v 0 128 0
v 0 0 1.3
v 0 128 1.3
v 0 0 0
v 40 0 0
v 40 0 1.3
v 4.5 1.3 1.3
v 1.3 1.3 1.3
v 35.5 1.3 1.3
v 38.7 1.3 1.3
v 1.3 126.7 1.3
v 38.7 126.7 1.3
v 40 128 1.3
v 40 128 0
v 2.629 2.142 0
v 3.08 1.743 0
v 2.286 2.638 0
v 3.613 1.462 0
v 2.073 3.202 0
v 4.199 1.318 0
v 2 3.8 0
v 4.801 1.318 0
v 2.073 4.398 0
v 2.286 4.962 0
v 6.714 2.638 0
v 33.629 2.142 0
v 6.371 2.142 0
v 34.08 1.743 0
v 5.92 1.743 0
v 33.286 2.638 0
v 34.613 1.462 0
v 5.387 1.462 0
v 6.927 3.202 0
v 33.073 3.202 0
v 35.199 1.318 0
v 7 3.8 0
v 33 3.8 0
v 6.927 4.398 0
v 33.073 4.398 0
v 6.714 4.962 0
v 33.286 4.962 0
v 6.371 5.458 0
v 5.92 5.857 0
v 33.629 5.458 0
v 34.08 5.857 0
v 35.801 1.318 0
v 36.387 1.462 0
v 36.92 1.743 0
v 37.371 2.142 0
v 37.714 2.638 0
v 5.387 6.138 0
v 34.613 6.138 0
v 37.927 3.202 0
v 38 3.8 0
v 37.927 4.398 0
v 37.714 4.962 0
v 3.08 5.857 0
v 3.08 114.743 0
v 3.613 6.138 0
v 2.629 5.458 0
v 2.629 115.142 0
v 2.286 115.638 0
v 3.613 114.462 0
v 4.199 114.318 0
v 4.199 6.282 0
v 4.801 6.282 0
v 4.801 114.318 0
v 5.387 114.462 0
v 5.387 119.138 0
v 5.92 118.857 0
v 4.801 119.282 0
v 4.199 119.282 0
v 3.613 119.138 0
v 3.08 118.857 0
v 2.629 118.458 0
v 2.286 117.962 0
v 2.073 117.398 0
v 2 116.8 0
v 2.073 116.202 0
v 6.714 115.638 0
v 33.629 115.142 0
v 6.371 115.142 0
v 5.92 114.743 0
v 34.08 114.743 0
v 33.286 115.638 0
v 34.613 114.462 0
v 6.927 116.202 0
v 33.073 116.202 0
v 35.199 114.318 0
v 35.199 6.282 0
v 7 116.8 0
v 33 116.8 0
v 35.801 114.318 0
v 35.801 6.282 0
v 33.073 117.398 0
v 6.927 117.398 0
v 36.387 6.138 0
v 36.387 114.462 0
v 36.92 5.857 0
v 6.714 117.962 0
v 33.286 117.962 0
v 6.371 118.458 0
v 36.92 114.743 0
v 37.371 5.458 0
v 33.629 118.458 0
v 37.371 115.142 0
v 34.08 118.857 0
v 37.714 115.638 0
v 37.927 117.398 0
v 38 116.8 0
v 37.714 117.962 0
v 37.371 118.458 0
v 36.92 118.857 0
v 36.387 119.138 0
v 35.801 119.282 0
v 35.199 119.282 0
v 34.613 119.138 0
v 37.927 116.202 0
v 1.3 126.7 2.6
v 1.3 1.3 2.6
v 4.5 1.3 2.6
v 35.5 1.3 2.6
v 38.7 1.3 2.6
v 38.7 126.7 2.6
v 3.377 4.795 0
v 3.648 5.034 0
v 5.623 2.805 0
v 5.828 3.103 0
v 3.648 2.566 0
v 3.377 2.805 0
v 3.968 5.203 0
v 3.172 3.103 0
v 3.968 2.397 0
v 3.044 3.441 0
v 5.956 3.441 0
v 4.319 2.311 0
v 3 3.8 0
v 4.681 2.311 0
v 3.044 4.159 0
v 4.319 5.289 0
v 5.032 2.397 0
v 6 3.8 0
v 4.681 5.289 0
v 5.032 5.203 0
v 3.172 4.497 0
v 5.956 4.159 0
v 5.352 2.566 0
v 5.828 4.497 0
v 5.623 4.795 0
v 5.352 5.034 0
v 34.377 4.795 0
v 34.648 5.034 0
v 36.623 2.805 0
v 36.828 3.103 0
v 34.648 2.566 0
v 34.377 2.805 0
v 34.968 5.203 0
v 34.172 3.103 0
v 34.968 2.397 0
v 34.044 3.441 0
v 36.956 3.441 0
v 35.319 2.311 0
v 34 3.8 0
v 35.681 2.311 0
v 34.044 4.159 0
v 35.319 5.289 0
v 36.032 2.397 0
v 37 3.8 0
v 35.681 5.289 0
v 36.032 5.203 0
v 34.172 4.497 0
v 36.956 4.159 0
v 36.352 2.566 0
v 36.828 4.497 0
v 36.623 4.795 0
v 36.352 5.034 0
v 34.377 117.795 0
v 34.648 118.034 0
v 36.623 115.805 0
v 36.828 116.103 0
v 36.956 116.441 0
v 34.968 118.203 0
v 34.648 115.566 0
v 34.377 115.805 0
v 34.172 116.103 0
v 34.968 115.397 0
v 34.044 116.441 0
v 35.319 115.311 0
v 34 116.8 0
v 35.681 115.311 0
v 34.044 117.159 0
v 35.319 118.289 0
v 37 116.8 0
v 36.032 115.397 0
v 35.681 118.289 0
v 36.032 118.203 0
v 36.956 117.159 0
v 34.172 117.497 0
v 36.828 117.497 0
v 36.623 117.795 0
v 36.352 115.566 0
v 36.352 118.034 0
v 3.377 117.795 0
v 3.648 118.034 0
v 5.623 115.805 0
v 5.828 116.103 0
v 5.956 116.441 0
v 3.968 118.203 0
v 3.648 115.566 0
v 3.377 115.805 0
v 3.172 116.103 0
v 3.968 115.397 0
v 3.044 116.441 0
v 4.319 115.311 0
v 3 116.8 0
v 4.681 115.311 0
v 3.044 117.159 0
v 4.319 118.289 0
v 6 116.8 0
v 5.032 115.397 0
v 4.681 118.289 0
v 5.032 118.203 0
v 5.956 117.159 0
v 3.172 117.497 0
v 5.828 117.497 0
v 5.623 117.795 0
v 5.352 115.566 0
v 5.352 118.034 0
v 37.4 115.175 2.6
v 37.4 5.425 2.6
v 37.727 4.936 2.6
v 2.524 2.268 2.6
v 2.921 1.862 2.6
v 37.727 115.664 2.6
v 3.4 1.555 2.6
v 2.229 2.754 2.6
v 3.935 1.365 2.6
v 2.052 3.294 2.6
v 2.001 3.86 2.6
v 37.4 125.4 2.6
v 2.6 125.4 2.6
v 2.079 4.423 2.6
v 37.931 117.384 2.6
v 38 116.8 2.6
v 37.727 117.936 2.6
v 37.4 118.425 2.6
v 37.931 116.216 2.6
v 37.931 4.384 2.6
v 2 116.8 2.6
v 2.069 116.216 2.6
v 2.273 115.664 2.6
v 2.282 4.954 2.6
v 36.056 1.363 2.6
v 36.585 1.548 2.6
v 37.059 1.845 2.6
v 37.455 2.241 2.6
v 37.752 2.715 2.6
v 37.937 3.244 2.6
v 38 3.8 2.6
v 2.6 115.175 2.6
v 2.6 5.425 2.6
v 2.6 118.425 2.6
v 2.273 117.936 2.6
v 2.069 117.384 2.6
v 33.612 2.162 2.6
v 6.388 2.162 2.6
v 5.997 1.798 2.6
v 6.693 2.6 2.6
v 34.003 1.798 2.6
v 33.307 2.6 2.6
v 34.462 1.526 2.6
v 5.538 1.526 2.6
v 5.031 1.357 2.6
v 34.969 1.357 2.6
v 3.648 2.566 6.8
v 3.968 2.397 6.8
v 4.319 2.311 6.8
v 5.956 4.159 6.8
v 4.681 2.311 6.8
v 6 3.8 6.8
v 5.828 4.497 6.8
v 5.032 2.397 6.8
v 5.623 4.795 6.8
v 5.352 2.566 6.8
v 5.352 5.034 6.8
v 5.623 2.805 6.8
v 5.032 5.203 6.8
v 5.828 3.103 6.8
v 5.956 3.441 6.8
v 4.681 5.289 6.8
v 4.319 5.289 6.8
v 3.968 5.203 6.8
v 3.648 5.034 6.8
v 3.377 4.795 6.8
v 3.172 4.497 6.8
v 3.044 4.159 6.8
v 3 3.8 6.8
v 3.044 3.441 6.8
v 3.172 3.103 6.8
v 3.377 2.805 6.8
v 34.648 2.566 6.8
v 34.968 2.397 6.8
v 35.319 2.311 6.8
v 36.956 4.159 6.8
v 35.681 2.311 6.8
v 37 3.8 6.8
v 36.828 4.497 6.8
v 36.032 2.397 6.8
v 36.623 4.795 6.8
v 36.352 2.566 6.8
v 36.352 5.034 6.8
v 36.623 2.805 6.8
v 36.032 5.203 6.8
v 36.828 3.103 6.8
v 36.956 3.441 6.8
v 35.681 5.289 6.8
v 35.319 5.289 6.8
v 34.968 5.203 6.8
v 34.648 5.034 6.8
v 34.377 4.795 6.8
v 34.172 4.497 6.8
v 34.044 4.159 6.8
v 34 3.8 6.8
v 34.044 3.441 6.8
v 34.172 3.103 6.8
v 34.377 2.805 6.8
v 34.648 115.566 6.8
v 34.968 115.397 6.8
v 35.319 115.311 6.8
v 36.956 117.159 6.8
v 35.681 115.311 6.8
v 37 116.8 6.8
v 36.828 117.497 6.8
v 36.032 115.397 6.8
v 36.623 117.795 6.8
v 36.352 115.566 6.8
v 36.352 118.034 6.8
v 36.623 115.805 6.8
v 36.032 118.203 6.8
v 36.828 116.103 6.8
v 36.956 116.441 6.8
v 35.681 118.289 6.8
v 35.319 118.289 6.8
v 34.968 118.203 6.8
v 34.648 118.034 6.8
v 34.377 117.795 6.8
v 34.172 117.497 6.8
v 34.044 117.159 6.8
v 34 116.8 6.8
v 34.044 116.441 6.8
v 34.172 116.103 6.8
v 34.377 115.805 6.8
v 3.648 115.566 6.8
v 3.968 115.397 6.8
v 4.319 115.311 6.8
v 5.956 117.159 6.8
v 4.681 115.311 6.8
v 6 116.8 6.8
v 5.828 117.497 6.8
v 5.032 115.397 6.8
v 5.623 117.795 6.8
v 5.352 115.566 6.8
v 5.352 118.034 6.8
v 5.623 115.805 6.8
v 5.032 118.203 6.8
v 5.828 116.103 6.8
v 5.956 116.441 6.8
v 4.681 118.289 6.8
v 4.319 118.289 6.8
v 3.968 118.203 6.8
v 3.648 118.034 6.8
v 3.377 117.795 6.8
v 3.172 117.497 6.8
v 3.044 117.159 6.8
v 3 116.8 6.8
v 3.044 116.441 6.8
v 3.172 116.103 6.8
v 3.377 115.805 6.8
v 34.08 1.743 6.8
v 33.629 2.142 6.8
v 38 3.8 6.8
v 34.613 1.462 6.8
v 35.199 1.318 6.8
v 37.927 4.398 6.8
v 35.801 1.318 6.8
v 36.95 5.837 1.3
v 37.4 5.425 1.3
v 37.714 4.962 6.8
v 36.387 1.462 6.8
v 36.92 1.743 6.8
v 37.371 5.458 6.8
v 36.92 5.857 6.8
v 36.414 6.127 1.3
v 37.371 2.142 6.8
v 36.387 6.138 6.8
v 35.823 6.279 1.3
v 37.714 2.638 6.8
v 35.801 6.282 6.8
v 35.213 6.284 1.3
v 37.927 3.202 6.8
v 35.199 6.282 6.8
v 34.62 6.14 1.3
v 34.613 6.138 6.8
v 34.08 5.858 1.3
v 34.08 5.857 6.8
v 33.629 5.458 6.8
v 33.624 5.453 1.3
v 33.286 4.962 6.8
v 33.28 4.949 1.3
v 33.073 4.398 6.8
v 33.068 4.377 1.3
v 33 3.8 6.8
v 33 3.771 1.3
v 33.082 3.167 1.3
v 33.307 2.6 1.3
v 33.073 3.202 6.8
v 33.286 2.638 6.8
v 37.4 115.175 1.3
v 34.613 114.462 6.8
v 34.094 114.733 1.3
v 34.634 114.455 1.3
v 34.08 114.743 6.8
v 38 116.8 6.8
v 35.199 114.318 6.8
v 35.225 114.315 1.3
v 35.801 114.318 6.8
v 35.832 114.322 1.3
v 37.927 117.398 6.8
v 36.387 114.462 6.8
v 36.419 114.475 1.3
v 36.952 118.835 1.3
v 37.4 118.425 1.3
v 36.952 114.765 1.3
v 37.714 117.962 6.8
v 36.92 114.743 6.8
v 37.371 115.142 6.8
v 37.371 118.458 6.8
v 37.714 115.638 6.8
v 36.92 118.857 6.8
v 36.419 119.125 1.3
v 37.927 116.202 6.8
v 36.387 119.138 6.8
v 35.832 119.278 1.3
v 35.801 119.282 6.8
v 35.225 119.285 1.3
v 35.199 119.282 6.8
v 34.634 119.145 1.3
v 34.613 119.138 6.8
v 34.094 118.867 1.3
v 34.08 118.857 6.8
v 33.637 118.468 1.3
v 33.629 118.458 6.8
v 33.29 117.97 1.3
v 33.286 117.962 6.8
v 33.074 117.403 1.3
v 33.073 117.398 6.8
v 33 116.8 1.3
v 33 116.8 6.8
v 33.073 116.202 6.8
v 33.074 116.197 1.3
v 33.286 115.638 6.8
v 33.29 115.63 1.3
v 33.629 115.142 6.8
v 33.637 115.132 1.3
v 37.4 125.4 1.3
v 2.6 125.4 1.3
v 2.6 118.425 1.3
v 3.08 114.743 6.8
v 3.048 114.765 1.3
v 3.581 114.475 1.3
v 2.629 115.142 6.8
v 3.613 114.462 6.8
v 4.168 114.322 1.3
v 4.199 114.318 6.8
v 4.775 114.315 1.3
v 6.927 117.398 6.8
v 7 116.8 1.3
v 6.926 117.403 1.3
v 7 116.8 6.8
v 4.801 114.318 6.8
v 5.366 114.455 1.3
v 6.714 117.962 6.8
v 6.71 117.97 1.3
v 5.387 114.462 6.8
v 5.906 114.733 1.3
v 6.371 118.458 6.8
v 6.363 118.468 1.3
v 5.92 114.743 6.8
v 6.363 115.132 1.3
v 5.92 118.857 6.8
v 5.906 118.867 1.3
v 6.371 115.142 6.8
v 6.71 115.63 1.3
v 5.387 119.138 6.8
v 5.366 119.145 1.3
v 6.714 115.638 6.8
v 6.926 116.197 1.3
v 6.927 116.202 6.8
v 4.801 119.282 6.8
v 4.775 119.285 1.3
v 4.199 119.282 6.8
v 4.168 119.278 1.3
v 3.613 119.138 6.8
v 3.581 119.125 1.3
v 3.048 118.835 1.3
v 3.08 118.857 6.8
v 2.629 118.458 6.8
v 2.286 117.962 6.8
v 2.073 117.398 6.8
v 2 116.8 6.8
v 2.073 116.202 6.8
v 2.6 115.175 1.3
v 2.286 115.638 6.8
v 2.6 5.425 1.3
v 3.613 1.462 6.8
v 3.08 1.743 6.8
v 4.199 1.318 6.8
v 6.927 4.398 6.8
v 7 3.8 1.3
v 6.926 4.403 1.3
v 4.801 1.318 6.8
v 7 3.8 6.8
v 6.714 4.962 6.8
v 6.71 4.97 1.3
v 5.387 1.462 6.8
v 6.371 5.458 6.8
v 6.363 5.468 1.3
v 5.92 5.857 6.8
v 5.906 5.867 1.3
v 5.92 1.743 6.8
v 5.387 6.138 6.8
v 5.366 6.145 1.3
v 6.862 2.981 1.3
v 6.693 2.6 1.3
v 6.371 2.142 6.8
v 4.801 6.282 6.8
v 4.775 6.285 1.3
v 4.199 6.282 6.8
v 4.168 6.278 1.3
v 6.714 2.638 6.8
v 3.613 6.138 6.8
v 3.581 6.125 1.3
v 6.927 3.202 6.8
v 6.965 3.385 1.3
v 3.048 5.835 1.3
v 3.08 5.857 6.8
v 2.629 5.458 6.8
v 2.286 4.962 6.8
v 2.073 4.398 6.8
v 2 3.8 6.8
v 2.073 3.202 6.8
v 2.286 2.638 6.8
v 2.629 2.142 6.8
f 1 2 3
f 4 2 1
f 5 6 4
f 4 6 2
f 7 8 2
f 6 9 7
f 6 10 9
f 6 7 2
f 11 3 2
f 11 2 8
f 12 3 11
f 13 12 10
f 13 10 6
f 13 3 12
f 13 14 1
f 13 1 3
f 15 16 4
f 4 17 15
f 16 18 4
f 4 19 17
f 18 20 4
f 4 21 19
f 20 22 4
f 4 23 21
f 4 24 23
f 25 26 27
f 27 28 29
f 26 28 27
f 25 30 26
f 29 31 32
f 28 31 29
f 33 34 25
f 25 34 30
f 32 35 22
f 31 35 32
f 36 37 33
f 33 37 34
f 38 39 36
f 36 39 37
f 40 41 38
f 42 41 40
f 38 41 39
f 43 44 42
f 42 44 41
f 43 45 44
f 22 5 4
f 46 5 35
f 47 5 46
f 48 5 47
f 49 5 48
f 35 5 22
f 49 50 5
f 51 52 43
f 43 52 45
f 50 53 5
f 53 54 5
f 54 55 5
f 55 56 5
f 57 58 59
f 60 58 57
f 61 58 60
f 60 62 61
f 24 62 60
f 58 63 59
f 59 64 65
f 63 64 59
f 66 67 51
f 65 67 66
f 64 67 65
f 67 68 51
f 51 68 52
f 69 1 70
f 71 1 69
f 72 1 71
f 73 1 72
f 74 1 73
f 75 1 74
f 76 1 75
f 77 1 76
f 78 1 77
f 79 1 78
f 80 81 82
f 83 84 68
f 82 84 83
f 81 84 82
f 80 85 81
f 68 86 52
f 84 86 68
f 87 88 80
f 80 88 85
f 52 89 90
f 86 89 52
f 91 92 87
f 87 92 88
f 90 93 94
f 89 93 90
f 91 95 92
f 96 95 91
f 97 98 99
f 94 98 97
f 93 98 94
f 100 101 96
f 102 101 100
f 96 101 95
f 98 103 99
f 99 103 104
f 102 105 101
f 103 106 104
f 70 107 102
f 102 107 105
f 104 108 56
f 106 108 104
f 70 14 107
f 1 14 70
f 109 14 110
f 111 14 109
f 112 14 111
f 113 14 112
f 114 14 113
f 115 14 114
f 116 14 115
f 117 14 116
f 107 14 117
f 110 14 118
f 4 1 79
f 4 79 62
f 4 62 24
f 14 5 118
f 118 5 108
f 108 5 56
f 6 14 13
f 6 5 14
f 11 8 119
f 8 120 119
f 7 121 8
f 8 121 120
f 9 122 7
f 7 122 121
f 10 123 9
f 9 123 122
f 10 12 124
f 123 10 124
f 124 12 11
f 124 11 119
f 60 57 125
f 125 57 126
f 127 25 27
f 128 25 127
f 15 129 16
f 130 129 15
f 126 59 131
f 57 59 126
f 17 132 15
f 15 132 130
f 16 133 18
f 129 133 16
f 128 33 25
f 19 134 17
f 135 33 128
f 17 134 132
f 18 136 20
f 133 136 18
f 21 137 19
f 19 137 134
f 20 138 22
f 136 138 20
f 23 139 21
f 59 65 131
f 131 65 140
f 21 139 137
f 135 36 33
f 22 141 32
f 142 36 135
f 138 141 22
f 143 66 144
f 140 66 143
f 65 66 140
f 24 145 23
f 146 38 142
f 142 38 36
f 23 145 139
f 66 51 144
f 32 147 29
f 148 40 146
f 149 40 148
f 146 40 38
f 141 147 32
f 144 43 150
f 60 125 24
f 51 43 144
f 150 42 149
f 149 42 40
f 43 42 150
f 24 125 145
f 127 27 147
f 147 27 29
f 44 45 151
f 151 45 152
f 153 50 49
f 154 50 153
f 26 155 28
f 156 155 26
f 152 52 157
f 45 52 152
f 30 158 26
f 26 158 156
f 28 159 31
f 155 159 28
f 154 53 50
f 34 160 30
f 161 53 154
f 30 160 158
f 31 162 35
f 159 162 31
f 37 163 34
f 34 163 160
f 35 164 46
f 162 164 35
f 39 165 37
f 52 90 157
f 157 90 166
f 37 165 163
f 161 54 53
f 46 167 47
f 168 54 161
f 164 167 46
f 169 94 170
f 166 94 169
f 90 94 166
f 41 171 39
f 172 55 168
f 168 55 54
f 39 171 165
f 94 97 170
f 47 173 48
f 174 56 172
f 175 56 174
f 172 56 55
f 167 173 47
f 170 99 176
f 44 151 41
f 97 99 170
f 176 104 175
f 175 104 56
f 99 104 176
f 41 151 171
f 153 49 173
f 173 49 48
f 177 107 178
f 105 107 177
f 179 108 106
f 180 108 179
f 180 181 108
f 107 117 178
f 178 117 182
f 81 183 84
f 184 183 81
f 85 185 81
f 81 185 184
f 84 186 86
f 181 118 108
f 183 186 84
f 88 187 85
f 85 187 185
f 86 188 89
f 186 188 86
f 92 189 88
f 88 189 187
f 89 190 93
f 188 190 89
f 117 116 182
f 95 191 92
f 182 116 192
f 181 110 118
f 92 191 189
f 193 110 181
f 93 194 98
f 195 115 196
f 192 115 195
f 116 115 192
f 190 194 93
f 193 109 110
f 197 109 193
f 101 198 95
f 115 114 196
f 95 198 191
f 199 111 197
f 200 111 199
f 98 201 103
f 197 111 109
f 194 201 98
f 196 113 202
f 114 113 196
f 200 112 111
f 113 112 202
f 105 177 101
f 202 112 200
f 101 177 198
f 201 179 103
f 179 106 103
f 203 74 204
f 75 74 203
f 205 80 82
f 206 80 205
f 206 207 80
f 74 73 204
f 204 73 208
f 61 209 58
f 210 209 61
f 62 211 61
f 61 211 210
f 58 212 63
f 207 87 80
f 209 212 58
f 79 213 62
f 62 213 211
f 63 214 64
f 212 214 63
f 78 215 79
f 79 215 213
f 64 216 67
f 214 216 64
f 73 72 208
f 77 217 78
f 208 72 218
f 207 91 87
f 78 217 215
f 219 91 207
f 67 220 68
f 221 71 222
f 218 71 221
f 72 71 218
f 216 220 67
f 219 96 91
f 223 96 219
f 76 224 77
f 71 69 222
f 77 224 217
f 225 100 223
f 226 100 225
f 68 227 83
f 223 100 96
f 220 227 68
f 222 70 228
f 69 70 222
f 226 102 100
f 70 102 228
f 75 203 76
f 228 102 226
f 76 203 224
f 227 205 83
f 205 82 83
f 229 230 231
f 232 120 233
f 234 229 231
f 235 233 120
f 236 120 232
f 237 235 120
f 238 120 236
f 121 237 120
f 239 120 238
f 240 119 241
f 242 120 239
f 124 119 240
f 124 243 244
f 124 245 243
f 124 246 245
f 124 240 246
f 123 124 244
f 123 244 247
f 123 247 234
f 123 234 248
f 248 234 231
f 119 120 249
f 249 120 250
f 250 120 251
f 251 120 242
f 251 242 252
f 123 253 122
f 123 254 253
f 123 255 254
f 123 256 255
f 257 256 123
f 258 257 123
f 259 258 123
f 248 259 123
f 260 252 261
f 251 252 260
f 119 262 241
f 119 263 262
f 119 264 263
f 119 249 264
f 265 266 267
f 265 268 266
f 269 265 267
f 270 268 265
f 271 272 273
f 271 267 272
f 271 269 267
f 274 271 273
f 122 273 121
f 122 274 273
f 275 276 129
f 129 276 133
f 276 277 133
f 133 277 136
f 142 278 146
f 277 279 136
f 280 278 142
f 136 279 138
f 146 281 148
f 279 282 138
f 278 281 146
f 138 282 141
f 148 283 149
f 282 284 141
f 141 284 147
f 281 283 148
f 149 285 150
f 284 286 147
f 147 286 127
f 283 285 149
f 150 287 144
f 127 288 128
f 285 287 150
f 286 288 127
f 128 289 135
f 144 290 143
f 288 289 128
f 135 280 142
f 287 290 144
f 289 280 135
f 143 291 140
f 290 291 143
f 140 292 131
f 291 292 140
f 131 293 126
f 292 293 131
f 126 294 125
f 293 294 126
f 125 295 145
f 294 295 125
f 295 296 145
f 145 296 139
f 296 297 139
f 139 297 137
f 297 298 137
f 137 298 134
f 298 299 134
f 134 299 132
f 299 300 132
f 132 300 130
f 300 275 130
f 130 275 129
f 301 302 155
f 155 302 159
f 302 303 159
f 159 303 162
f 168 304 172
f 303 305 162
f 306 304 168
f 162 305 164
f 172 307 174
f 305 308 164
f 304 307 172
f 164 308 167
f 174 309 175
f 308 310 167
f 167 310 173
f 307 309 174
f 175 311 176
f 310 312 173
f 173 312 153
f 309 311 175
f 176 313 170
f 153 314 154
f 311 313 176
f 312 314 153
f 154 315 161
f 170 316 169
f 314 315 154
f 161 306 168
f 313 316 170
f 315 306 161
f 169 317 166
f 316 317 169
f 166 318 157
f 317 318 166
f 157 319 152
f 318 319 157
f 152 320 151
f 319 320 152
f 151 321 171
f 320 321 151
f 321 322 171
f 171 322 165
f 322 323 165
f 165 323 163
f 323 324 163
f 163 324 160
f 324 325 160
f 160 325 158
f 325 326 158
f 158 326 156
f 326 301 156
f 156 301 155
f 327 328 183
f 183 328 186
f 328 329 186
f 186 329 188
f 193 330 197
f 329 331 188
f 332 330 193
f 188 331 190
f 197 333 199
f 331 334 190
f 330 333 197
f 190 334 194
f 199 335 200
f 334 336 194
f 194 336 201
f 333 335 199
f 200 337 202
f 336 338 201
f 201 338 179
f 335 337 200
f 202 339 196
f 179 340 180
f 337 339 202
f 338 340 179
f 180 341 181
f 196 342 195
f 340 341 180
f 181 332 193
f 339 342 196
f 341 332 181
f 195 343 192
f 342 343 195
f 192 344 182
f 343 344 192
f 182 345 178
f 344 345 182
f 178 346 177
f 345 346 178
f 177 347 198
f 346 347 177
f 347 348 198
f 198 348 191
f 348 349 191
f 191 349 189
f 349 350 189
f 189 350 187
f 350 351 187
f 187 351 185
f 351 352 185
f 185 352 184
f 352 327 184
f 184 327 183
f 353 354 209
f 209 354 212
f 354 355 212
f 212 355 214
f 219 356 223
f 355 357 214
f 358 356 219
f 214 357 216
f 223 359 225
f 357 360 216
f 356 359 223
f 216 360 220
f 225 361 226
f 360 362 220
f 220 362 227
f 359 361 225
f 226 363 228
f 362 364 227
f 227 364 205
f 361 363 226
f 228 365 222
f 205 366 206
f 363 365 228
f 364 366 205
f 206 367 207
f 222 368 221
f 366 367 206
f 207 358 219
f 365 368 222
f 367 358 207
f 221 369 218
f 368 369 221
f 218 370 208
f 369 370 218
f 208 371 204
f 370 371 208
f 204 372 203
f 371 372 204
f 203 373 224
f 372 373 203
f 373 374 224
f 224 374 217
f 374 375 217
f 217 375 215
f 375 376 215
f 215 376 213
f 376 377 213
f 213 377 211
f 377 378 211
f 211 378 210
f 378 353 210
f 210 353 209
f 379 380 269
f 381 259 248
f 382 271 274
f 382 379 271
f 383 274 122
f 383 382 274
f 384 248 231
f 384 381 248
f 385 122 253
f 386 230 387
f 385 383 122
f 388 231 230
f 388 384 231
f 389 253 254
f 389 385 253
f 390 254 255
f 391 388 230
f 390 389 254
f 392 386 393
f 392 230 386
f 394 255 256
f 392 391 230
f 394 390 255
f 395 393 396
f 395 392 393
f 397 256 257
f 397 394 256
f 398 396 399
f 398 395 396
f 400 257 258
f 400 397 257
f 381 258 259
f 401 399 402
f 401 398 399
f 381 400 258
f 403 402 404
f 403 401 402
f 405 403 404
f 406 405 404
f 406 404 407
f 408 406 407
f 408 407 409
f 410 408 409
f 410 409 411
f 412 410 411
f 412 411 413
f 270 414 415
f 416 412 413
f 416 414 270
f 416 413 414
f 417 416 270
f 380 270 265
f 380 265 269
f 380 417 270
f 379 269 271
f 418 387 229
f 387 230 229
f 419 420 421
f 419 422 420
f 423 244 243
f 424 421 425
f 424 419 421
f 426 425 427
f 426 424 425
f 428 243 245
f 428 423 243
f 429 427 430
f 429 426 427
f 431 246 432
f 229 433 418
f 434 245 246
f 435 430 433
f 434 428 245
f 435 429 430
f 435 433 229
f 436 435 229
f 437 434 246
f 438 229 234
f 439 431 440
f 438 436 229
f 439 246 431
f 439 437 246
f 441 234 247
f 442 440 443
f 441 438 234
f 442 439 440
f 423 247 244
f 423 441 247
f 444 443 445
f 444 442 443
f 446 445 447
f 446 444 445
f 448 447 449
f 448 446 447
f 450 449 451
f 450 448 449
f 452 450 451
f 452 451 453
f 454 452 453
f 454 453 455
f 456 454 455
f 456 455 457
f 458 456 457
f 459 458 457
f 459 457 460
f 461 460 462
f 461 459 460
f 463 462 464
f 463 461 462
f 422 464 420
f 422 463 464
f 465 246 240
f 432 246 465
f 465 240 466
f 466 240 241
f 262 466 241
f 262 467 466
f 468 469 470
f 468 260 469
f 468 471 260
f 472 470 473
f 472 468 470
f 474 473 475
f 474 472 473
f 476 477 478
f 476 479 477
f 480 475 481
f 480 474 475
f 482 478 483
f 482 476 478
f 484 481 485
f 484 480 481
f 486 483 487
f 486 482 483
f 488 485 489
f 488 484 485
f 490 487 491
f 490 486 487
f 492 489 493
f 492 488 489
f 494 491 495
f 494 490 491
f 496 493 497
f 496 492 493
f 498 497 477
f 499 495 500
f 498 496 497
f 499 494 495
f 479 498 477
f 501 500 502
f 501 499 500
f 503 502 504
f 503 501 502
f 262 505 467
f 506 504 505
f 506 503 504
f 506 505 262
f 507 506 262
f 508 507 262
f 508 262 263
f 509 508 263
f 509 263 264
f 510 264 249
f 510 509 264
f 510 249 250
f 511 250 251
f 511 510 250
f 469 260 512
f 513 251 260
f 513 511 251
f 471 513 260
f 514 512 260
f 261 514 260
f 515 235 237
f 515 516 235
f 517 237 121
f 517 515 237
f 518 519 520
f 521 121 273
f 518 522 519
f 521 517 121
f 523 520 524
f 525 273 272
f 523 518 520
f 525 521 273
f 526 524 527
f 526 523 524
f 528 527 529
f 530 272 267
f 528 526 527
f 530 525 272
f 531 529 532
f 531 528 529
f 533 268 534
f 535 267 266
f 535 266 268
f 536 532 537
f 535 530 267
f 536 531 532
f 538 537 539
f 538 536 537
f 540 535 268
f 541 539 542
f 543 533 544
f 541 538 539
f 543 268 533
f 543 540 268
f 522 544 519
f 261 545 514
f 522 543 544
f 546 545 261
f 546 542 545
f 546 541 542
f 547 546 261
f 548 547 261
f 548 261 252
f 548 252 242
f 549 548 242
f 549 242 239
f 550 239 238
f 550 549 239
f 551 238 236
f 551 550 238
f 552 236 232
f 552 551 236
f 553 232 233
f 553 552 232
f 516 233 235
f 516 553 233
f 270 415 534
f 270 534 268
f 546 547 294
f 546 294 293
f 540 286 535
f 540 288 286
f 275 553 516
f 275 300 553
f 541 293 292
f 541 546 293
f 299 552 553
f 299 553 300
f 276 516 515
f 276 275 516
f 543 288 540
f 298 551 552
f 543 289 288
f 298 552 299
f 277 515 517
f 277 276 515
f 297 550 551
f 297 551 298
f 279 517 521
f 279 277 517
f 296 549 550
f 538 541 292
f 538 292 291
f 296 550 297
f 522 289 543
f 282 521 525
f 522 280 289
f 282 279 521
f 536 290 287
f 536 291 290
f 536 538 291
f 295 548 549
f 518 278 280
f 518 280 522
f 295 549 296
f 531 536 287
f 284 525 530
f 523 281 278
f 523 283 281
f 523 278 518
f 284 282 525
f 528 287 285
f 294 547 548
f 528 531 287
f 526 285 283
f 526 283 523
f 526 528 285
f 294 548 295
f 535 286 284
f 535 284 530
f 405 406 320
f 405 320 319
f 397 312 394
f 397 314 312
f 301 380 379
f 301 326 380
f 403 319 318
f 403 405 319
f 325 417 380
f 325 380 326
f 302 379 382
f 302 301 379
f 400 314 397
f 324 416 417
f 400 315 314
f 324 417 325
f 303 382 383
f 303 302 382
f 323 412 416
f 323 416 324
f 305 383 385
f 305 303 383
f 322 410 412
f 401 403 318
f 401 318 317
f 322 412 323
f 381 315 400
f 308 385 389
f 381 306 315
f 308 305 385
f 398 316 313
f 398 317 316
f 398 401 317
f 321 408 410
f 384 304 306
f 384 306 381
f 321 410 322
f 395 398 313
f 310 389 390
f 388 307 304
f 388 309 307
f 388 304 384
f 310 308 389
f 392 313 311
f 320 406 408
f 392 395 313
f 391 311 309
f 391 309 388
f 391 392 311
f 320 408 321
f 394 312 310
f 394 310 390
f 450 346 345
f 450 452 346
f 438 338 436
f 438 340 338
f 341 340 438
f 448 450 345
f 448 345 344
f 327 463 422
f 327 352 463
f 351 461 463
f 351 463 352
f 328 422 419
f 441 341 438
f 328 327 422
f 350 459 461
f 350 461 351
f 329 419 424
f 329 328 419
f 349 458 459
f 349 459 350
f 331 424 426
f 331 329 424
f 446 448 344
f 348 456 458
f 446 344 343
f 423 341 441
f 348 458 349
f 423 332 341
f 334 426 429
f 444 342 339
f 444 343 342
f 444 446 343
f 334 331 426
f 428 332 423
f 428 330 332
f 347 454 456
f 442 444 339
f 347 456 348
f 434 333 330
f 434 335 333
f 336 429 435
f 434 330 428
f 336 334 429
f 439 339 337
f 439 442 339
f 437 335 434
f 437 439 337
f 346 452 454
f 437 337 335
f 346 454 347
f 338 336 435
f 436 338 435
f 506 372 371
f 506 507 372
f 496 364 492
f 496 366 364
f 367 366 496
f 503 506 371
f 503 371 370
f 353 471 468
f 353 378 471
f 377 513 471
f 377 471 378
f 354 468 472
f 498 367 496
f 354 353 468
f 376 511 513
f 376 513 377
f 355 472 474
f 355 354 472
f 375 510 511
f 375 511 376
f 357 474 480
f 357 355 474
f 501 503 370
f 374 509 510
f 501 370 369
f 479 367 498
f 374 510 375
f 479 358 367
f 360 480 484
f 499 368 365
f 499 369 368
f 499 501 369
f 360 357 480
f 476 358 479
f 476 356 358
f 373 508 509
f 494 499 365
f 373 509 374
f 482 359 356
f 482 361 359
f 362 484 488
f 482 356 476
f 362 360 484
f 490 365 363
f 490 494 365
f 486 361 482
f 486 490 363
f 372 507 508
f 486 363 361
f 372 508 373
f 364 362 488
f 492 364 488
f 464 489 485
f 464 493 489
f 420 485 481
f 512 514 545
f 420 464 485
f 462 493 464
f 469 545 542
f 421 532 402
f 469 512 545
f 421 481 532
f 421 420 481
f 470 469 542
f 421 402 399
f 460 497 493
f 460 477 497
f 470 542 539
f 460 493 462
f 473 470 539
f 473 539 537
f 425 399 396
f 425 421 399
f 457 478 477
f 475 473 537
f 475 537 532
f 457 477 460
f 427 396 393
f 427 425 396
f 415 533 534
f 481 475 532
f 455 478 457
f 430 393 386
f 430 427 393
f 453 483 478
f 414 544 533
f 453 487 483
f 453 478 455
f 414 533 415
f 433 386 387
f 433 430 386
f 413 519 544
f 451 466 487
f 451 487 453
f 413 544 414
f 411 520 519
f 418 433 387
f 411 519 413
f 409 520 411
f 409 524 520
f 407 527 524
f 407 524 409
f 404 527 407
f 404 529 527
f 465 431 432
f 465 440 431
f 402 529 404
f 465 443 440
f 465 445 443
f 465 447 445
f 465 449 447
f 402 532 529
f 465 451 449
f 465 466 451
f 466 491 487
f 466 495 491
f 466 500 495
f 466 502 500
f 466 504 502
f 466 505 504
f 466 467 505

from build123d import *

# Parameters (mm, degrees)
CYLINDER001_R     = 1.5
CYLINDER001_DEPTH = 6.8
CYLINDER_R        = 2.5
CYLINDER_DEPTH    = 6.8
BOX002_W          = 34.8
BOX002_H          = 122.8
BOX002_DEPTH      = 1.3
BOX001_W          = 37.4
BOX001_H          = 125.4
BOX001_DEPTH      = 1.3
BOX_W             = 40
BOX_H             = 128
BOX_DEPTH         = 1.3


with BuildPart() as cylinder001:
    # Cylinder001 → Cylinder001 (new body)
    with BuildSketch(Plane(origin=(4.5, 3.8, 0), x_dir=(1, 0, 0), z_dir=(0, 0, 1))):
        Circle(CYLINDER001_R)
    extrude(amount=CYLINDER001_DEPTH)


with BuildPart() as clone003:
    # Clone003 base: copy of Cylinder001
    add(cylinder001.part)


with BuildPart() as clone003_1:
    # Clone003 placement: moved
    add(clone003.part.moved(Location((31, 0, 0))))


with BuildPart() as clone004:
    # Clone004 base: copy of Cylinder001
    add(cylinder001.part)


with BuildPart() as clone004_1:
    # Clone004 placement: moved
    add(clone004.part.moved(Location((0, 113, 0))))


with BuildPart() as board_post_drills:
    # Clone005 base: copy of Cylinder001
    add(cylinder001.part)


with BuildPart() as board_post_drills_1:
    # Clone005 placement: moved
    add(board_post_drills.part.moved(Location((31, 113, 0))))

    # Fusion001: union Cylinder001, Clone003, Clone004
    add(cylinder001.part)
    add(clone003_1.part)
    add(clone004_1.part)


with BuildPart() as cylinder:
    # Cylinder → Cylinder (new body)
    with BuildSketch(Plane(origin=(4.5, 3.8, 0), x_dir=(1, 0, 0), z_dir=(0, 0, 1))):
        Circle(CYLINDER_R)
    extrude(amount=CYLINDER_DEPTH)


with BuildPart() as clone001:
    # Clone001 base: copy of Cylinder
    add(cylinder.part)


with BuildPart() as clone001_1:
    # Clone001 placement: moved
    add(clone001.part.moved(Location((0, 113, 0))))


with BuildPart() as clone:
    # Clone base: copy of Cylinder
    add(cylinder.part)


with BuildPart() as clone_1:
    # Clone placement: moved
    add(clone.part.moved(Location((31, 0, 0))))


with BuildPart() as clone002:
    # Clone002 base: copy of Cylinder
    add(cylinder.part)


with BuildPart() as clone002_1:
    # Clone002 placement: moved
    add(clone002.part.moved(Location((31, 113, 0))))


with BuildPart() as board_posts:
    # Fusion base: copy of Cylinder
    add(cylinder.part)

    # Fusion: union Clone001, Clone, Clone002
    add(clone001_1.part)
    add(clone_1.part)
    add(clone002_1.part)


with BuildPart() as wall_cutout:
    # Box002 → Box002 (new body)
    with BuildSketch(Plane(origin=(2.6, 2.6, 1.3), x_dir=(1, 0, 0), z_dir=(0, 0, 1))):
        with Locations((17.4, 61.4)):
            Rectangle(BOX002_W, BOX002_H)
    extrude(amount=BOX002_DEPTH)


with BuildPart() as wall:
    # Box001 → Box001 (new body)
    with BuildSketch(Plane(origin=(1.3, 1.3, 1.3), x_dir=(1, 0, 0), z_dir=(0, 0, 1))):
        with Locations((18.7, 62.7)):
            Rectangle(BOX001_W, BOX001_H)
    extrude(amount=BOX001_DEPTH)

    # Cut: cut Wall cutout
    add(wall_cutout.part, mode=Mode.SUBTRACT)


with BuildPart() as back_plate_plus_wall_and_posts_drilled:
    # Box → Box (new body)
    with BuildSketch(Plane.XY):
        with Locations((20, 64)):
            Rectangle(BOX_W, BOX_H)
    extrude(amount=BOX_DEPTH)

    # Fusion002: union Board posts, Wall
    add(board_posts.part)
    add(wall.part)

    # Cut001: cut Board post drills
    add(board_post_drills_1.part, mode=Mode.SUBTRACT)


solid = back_plate_plus_wall_and_posts_drilled.part
